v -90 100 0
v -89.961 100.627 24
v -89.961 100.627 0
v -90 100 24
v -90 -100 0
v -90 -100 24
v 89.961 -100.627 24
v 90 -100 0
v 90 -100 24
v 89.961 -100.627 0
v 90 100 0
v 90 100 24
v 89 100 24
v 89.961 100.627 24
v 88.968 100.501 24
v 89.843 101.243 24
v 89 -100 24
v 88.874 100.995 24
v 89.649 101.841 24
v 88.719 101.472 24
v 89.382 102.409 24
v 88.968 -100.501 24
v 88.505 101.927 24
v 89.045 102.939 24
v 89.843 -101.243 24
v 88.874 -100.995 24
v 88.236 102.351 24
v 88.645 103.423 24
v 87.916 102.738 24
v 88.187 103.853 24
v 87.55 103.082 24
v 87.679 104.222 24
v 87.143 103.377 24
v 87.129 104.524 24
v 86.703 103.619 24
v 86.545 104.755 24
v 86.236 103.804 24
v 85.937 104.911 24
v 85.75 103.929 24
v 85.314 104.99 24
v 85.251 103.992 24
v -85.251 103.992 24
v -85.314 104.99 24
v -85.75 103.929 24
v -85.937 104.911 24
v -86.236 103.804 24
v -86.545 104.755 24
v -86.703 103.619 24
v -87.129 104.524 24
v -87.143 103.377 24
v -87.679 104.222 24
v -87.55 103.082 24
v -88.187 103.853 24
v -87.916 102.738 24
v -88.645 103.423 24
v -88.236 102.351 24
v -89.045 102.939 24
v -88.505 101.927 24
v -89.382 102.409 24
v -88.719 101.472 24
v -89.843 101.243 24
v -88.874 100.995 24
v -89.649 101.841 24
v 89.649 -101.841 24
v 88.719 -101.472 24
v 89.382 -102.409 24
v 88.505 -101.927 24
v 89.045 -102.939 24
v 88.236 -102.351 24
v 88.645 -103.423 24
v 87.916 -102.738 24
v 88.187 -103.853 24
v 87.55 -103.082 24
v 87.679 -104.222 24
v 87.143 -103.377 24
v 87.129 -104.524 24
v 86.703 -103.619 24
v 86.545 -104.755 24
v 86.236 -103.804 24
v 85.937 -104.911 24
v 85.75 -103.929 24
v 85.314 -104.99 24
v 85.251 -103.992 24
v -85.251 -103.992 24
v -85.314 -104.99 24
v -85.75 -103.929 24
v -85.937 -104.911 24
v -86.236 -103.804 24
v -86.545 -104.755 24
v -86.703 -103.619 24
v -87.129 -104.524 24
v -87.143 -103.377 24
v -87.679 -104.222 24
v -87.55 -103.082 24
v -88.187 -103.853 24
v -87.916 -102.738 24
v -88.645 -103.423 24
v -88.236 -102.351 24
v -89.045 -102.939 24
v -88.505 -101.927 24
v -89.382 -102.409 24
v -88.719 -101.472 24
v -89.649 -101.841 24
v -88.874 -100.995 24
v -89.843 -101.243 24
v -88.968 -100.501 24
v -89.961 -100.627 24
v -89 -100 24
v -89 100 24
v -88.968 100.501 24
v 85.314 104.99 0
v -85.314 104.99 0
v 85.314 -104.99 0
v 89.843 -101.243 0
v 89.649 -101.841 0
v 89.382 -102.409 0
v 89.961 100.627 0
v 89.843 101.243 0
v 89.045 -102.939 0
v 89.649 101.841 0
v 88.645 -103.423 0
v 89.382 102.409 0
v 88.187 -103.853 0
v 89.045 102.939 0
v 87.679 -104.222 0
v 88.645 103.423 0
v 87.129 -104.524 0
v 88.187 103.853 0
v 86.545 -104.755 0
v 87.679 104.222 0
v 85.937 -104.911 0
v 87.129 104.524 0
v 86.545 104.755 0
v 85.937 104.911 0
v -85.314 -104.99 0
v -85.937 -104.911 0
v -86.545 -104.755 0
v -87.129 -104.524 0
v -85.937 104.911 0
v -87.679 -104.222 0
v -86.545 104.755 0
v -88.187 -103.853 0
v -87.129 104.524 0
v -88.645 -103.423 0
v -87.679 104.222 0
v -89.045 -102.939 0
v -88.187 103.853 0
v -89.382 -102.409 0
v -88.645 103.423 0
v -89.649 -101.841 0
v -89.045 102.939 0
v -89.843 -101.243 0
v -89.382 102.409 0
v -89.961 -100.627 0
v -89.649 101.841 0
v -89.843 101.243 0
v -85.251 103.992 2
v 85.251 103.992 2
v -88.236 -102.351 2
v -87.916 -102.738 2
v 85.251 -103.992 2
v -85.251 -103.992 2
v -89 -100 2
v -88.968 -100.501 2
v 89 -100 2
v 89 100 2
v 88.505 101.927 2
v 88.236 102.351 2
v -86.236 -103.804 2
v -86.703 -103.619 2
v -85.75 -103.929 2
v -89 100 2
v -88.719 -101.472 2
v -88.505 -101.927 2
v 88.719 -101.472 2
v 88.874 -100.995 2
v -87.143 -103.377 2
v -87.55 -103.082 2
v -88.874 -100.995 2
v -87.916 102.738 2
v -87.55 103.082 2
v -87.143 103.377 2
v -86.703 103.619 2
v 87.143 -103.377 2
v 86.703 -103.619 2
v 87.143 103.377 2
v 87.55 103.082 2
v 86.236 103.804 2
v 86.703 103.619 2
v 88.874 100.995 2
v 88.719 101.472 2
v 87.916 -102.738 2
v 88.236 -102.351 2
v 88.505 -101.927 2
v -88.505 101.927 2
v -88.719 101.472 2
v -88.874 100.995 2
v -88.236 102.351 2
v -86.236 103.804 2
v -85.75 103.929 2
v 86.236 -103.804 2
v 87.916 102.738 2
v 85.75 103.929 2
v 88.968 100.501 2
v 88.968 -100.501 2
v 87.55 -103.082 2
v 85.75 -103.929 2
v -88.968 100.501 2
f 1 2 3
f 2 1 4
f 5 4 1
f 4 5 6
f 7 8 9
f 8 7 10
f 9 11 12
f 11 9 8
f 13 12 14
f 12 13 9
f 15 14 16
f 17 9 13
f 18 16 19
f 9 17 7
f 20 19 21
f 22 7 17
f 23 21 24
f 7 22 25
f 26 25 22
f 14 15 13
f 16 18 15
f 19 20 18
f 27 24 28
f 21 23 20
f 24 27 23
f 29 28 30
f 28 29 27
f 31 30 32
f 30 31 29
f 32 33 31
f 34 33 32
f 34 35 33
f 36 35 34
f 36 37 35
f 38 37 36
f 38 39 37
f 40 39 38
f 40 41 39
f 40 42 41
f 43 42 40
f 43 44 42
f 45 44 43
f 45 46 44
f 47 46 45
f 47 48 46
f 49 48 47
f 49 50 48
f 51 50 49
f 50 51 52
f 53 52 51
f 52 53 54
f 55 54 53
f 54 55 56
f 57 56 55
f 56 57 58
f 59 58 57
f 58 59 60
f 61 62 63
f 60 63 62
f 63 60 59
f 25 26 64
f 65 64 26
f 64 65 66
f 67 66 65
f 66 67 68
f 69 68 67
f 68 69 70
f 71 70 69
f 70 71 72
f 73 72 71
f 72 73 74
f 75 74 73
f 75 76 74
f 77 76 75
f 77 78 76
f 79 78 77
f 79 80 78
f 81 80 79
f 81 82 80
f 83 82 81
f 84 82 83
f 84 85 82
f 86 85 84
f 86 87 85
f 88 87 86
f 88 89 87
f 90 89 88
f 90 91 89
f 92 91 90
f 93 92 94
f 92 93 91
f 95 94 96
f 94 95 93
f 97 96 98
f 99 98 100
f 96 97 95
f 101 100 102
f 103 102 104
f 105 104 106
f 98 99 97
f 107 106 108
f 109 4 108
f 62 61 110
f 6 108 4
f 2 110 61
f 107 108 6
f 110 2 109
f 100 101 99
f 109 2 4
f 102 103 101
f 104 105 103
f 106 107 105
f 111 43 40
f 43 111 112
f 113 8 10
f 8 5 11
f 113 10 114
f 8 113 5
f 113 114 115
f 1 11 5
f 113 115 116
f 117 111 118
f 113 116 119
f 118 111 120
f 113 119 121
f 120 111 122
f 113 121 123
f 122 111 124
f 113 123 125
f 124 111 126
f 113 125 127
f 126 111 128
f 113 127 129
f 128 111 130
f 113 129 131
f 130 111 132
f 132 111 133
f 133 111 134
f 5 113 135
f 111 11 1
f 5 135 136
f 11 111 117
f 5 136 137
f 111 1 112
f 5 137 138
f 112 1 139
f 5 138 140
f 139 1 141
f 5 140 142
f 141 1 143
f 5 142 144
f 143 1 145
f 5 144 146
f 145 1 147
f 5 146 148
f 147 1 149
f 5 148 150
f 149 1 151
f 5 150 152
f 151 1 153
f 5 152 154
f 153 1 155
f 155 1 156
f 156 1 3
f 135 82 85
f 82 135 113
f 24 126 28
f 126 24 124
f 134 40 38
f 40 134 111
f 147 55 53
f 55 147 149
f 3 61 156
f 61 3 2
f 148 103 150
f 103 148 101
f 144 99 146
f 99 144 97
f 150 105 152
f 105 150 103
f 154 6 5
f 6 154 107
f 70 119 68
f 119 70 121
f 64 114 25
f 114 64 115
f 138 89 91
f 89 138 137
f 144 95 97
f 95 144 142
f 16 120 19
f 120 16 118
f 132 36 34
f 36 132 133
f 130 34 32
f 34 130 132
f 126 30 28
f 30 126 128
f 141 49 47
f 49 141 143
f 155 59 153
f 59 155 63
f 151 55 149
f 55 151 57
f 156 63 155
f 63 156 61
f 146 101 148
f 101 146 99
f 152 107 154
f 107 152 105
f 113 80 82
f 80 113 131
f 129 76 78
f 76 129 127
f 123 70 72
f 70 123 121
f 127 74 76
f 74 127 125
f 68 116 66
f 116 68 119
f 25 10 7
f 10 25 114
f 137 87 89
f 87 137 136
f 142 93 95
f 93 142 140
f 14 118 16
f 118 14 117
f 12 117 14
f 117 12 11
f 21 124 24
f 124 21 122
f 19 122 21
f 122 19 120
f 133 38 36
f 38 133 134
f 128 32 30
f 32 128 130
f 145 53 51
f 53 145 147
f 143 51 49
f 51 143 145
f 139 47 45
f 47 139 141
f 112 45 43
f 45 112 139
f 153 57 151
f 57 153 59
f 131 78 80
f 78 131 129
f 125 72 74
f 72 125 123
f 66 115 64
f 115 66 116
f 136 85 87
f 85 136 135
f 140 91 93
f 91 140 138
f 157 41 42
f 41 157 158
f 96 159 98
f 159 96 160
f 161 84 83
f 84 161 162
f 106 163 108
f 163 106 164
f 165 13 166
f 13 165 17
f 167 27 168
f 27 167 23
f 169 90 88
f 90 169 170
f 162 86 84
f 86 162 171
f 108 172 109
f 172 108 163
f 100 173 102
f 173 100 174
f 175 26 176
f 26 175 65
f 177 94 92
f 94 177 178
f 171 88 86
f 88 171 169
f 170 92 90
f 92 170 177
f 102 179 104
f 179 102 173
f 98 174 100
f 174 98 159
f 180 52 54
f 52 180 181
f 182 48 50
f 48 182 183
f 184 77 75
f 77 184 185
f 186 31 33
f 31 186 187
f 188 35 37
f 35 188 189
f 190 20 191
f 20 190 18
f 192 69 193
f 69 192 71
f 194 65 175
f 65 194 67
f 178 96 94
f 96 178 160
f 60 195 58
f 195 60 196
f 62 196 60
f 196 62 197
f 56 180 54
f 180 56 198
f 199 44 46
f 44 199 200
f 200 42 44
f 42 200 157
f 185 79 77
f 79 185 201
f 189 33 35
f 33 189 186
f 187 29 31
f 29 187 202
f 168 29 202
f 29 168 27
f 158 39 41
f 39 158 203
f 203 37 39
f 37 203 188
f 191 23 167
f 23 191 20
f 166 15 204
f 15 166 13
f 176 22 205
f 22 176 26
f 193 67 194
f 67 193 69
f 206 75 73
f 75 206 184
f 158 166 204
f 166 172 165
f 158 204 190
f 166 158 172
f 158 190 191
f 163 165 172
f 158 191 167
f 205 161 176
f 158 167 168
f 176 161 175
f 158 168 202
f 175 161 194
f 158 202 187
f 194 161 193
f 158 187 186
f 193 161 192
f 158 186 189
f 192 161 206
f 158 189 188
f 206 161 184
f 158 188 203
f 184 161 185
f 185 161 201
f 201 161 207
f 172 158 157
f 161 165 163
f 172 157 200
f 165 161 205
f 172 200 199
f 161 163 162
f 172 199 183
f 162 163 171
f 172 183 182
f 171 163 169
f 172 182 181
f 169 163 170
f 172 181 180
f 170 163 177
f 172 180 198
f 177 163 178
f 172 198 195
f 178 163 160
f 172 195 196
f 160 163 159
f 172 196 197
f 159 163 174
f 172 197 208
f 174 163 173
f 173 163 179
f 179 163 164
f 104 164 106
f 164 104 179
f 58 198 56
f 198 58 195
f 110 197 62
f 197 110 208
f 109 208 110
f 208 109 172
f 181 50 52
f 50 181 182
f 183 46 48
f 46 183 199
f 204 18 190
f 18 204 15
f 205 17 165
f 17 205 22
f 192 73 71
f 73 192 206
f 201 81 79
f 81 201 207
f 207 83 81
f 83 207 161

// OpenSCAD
$fn = 50;


difference() {
	union() {
		hull() {
			translate(v = [-85.0000000000, 100.0000000000, 0]) {
				cylinder(h = 24, r = 5);
			}
			translate(v = [85.0000000000, 100.0000000000, 0]) {
				cylinder(h = 24, r = 5);
			}
			translate(v = [-85.0000000000, -100.0000000000, 0]) {
				cylinder(h = 24, r = 5);
			}
			translate(v = [85.0000000000, -100.0000000000, 0]) {
				cylinder(h = 24, r = 5);
			}
		}
	}
	union() {
		translate(v = [0, 0, 2]) {
			hull() {
				translate(v = [-85.0000000000, 100.0000000000, 0]) {
					cylinder(h = 22, r = 4);
				}
				translate(v = [85.0000000000, 100.0000000000, 0]) {
					cylinder(h = 22, r = 4);
				}
				translate(v = [-85.0000000000, -100.0000000000, 0]) {
					cylinder(h = 22, r = 4);
				}
				translate(v = [85.0000000000, -100.0000000000, 0]) {
					cylinder(h = 22, r = 4);
				}
			}
		}
	}
}
